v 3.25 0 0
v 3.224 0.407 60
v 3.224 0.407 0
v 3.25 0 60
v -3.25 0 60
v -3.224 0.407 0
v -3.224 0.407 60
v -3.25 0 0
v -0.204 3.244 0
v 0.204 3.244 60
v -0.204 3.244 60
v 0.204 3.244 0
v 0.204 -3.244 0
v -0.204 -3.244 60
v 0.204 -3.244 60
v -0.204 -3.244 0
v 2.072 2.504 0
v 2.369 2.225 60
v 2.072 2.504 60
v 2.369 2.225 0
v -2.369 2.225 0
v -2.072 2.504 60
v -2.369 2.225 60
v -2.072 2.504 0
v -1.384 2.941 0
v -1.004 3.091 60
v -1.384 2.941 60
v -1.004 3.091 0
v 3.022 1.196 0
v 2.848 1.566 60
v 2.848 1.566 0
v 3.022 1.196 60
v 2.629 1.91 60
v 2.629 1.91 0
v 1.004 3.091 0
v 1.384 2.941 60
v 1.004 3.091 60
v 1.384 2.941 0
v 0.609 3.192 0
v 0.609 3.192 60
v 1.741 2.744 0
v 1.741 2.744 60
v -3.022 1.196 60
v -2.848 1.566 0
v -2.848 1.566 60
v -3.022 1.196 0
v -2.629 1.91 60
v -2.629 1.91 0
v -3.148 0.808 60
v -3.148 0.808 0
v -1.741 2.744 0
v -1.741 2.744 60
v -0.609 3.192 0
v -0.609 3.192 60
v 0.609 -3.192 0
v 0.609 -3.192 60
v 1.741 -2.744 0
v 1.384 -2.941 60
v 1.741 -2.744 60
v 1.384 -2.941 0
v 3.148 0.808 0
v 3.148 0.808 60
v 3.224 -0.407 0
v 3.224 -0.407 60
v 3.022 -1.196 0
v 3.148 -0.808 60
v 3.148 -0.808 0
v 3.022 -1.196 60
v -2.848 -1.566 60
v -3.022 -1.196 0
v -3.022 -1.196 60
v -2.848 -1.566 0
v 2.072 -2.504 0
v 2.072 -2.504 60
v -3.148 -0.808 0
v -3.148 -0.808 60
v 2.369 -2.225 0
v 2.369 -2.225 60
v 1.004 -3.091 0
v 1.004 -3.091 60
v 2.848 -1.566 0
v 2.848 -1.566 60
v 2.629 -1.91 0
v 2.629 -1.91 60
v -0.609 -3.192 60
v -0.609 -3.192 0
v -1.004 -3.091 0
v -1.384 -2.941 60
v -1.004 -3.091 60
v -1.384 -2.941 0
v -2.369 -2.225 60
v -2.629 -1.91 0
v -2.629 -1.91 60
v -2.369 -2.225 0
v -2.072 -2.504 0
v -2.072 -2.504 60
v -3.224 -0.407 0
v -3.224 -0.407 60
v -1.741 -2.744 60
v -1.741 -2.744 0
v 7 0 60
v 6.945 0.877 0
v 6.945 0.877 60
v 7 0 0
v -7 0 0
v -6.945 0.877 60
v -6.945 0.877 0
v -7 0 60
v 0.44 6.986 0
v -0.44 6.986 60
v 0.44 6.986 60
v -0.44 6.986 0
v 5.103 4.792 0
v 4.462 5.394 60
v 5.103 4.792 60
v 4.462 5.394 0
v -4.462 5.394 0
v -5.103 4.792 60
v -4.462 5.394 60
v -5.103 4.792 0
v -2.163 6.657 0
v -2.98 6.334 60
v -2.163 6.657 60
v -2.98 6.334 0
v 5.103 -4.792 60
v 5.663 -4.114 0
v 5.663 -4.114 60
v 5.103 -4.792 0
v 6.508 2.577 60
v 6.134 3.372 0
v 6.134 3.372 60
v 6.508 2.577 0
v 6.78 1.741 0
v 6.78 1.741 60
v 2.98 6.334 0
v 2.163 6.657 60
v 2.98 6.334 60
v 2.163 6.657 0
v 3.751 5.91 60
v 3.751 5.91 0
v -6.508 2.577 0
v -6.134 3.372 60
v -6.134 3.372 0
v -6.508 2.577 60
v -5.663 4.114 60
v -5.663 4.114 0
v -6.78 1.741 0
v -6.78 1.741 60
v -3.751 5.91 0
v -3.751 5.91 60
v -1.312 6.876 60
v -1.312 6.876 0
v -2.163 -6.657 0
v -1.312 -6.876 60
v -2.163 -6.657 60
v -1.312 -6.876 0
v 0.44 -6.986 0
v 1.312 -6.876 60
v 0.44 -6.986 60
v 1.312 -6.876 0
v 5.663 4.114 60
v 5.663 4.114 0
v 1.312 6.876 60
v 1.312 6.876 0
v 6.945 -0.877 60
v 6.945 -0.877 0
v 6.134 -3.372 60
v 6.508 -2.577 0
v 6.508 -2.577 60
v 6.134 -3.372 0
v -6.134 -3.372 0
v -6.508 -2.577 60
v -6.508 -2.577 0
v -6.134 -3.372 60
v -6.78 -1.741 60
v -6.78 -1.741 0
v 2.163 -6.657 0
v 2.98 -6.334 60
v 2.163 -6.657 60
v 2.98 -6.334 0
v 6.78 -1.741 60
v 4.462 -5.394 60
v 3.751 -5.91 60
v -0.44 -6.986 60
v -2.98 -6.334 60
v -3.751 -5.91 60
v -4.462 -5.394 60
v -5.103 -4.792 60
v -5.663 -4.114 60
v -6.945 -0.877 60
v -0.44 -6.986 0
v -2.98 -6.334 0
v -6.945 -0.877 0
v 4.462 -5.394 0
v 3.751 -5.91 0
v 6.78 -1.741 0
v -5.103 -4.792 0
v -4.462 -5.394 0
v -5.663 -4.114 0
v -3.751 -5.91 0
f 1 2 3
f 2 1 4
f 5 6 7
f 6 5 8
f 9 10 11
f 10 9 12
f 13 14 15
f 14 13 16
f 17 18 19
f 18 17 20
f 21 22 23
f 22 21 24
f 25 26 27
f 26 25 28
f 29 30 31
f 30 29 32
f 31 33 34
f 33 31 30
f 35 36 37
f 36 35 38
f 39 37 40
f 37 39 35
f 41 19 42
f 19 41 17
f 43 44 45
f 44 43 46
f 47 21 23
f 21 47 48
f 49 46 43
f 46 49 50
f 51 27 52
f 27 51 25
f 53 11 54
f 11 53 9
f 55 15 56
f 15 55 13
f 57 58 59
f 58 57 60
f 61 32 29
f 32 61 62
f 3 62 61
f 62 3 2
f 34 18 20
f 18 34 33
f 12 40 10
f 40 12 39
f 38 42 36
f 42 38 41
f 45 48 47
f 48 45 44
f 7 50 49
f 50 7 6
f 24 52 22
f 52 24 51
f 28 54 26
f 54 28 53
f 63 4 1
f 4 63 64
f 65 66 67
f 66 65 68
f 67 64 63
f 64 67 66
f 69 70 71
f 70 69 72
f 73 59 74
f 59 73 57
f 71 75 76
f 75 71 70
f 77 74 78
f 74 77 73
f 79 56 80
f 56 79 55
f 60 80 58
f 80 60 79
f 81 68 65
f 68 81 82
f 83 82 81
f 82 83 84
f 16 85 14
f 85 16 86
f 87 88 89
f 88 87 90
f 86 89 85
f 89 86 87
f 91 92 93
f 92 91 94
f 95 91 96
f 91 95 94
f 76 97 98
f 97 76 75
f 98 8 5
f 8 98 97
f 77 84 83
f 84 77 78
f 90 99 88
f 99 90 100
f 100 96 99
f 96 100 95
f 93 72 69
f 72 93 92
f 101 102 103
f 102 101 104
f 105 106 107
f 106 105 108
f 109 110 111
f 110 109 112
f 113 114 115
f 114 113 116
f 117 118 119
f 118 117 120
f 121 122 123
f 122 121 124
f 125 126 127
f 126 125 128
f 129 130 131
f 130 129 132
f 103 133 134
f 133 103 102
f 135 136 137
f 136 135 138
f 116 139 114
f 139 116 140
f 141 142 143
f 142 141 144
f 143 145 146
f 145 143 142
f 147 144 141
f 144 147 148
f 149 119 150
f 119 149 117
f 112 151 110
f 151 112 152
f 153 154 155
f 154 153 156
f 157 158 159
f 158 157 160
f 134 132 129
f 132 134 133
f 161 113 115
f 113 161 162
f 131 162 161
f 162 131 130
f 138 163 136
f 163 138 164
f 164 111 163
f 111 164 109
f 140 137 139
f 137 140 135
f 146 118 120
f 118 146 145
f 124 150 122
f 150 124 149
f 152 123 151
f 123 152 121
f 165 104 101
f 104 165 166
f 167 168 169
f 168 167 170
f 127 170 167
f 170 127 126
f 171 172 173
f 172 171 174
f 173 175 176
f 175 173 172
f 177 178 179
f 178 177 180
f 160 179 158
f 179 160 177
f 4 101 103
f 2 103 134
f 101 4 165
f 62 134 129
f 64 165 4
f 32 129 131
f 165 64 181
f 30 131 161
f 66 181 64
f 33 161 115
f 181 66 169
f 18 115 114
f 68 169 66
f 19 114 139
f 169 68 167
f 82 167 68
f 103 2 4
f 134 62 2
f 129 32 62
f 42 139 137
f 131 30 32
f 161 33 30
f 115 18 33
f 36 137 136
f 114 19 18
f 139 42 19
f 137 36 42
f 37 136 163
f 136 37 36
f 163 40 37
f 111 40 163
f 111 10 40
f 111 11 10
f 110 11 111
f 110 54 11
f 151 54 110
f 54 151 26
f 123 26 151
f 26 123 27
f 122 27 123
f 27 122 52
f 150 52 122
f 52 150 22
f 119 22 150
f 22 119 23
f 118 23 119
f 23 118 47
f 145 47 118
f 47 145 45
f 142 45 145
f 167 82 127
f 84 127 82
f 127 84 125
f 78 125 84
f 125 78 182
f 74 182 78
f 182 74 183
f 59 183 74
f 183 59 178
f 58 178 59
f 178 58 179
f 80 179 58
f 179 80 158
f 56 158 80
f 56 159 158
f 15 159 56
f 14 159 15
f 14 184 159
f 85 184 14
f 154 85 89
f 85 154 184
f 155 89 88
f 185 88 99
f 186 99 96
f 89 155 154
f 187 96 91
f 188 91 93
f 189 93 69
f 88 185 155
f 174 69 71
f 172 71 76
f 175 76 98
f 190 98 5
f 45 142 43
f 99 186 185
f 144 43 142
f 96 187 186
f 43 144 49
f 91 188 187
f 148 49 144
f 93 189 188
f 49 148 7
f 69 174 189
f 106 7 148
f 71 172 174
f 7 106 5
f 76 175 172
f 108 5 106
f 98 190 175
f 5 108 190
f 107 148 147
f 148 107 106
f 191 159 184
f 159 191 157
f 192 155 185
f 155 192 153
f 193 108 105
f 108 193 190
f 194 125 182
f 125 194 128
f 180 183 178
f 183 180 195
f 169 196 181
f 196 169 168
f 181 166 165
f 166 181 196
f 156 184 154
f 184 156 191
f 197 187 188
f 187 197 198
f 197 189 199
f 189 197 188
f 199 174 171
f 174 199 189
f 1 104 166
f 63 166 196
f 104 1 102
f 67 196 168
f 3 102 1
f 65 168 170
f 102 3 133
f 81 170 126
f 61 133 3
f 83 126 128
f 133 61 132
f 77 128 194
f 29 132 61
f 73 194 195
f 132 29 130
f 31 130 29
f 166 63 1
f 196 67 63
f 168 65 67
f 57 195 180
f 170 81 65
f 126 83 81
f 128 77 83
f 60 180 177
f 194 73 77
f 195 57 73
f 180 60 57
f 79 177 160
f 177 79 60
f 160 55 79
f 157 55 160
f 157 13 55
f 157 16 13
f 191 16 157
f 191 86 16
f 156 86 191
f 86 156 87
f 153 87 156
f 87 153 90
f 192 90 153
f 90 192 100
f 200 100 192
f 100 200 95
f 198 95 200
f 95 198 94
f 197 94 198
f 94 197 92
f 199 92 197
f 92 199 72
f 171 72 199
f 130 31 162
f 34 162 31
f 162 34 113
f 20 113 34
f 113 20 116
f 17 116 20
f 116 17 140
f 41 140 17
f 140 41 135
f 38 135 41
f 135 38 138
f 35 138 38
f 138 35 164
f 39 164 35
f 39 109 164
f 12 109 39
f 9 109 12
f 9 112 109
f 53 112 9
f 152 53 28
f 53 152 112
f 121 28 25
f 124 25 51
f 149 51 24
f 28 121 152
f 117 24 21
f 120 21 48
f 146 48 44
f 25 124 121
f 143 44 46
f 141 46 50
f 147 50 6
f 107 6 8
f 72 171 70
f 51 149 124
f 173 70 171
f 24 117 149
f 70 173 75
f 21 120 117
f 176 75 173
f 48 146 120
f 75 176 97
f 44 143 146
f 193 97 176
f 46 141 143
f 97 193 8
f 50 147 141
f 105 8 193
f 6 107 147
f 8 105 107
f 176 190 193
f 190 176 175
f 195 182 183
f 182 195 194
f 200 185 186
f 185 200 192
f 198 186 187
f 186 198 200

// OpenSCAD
$fn = 50;


difference() {
	union() {
		cylinder(h = 60, r = 7.0000000000);
	}
	union() {
		translate(v = [0.0000000000, 0.0000000000, -100.0000000000]) {
			cylinder(h = 200, r = 3.2500000000);
		}
		cylinder(h = 60, r = 1.8000000000);
		cylinder(h = 60, r = 1.8000000000);
		cylinder(h = 60, r = 1.8000000000);
	}
}
